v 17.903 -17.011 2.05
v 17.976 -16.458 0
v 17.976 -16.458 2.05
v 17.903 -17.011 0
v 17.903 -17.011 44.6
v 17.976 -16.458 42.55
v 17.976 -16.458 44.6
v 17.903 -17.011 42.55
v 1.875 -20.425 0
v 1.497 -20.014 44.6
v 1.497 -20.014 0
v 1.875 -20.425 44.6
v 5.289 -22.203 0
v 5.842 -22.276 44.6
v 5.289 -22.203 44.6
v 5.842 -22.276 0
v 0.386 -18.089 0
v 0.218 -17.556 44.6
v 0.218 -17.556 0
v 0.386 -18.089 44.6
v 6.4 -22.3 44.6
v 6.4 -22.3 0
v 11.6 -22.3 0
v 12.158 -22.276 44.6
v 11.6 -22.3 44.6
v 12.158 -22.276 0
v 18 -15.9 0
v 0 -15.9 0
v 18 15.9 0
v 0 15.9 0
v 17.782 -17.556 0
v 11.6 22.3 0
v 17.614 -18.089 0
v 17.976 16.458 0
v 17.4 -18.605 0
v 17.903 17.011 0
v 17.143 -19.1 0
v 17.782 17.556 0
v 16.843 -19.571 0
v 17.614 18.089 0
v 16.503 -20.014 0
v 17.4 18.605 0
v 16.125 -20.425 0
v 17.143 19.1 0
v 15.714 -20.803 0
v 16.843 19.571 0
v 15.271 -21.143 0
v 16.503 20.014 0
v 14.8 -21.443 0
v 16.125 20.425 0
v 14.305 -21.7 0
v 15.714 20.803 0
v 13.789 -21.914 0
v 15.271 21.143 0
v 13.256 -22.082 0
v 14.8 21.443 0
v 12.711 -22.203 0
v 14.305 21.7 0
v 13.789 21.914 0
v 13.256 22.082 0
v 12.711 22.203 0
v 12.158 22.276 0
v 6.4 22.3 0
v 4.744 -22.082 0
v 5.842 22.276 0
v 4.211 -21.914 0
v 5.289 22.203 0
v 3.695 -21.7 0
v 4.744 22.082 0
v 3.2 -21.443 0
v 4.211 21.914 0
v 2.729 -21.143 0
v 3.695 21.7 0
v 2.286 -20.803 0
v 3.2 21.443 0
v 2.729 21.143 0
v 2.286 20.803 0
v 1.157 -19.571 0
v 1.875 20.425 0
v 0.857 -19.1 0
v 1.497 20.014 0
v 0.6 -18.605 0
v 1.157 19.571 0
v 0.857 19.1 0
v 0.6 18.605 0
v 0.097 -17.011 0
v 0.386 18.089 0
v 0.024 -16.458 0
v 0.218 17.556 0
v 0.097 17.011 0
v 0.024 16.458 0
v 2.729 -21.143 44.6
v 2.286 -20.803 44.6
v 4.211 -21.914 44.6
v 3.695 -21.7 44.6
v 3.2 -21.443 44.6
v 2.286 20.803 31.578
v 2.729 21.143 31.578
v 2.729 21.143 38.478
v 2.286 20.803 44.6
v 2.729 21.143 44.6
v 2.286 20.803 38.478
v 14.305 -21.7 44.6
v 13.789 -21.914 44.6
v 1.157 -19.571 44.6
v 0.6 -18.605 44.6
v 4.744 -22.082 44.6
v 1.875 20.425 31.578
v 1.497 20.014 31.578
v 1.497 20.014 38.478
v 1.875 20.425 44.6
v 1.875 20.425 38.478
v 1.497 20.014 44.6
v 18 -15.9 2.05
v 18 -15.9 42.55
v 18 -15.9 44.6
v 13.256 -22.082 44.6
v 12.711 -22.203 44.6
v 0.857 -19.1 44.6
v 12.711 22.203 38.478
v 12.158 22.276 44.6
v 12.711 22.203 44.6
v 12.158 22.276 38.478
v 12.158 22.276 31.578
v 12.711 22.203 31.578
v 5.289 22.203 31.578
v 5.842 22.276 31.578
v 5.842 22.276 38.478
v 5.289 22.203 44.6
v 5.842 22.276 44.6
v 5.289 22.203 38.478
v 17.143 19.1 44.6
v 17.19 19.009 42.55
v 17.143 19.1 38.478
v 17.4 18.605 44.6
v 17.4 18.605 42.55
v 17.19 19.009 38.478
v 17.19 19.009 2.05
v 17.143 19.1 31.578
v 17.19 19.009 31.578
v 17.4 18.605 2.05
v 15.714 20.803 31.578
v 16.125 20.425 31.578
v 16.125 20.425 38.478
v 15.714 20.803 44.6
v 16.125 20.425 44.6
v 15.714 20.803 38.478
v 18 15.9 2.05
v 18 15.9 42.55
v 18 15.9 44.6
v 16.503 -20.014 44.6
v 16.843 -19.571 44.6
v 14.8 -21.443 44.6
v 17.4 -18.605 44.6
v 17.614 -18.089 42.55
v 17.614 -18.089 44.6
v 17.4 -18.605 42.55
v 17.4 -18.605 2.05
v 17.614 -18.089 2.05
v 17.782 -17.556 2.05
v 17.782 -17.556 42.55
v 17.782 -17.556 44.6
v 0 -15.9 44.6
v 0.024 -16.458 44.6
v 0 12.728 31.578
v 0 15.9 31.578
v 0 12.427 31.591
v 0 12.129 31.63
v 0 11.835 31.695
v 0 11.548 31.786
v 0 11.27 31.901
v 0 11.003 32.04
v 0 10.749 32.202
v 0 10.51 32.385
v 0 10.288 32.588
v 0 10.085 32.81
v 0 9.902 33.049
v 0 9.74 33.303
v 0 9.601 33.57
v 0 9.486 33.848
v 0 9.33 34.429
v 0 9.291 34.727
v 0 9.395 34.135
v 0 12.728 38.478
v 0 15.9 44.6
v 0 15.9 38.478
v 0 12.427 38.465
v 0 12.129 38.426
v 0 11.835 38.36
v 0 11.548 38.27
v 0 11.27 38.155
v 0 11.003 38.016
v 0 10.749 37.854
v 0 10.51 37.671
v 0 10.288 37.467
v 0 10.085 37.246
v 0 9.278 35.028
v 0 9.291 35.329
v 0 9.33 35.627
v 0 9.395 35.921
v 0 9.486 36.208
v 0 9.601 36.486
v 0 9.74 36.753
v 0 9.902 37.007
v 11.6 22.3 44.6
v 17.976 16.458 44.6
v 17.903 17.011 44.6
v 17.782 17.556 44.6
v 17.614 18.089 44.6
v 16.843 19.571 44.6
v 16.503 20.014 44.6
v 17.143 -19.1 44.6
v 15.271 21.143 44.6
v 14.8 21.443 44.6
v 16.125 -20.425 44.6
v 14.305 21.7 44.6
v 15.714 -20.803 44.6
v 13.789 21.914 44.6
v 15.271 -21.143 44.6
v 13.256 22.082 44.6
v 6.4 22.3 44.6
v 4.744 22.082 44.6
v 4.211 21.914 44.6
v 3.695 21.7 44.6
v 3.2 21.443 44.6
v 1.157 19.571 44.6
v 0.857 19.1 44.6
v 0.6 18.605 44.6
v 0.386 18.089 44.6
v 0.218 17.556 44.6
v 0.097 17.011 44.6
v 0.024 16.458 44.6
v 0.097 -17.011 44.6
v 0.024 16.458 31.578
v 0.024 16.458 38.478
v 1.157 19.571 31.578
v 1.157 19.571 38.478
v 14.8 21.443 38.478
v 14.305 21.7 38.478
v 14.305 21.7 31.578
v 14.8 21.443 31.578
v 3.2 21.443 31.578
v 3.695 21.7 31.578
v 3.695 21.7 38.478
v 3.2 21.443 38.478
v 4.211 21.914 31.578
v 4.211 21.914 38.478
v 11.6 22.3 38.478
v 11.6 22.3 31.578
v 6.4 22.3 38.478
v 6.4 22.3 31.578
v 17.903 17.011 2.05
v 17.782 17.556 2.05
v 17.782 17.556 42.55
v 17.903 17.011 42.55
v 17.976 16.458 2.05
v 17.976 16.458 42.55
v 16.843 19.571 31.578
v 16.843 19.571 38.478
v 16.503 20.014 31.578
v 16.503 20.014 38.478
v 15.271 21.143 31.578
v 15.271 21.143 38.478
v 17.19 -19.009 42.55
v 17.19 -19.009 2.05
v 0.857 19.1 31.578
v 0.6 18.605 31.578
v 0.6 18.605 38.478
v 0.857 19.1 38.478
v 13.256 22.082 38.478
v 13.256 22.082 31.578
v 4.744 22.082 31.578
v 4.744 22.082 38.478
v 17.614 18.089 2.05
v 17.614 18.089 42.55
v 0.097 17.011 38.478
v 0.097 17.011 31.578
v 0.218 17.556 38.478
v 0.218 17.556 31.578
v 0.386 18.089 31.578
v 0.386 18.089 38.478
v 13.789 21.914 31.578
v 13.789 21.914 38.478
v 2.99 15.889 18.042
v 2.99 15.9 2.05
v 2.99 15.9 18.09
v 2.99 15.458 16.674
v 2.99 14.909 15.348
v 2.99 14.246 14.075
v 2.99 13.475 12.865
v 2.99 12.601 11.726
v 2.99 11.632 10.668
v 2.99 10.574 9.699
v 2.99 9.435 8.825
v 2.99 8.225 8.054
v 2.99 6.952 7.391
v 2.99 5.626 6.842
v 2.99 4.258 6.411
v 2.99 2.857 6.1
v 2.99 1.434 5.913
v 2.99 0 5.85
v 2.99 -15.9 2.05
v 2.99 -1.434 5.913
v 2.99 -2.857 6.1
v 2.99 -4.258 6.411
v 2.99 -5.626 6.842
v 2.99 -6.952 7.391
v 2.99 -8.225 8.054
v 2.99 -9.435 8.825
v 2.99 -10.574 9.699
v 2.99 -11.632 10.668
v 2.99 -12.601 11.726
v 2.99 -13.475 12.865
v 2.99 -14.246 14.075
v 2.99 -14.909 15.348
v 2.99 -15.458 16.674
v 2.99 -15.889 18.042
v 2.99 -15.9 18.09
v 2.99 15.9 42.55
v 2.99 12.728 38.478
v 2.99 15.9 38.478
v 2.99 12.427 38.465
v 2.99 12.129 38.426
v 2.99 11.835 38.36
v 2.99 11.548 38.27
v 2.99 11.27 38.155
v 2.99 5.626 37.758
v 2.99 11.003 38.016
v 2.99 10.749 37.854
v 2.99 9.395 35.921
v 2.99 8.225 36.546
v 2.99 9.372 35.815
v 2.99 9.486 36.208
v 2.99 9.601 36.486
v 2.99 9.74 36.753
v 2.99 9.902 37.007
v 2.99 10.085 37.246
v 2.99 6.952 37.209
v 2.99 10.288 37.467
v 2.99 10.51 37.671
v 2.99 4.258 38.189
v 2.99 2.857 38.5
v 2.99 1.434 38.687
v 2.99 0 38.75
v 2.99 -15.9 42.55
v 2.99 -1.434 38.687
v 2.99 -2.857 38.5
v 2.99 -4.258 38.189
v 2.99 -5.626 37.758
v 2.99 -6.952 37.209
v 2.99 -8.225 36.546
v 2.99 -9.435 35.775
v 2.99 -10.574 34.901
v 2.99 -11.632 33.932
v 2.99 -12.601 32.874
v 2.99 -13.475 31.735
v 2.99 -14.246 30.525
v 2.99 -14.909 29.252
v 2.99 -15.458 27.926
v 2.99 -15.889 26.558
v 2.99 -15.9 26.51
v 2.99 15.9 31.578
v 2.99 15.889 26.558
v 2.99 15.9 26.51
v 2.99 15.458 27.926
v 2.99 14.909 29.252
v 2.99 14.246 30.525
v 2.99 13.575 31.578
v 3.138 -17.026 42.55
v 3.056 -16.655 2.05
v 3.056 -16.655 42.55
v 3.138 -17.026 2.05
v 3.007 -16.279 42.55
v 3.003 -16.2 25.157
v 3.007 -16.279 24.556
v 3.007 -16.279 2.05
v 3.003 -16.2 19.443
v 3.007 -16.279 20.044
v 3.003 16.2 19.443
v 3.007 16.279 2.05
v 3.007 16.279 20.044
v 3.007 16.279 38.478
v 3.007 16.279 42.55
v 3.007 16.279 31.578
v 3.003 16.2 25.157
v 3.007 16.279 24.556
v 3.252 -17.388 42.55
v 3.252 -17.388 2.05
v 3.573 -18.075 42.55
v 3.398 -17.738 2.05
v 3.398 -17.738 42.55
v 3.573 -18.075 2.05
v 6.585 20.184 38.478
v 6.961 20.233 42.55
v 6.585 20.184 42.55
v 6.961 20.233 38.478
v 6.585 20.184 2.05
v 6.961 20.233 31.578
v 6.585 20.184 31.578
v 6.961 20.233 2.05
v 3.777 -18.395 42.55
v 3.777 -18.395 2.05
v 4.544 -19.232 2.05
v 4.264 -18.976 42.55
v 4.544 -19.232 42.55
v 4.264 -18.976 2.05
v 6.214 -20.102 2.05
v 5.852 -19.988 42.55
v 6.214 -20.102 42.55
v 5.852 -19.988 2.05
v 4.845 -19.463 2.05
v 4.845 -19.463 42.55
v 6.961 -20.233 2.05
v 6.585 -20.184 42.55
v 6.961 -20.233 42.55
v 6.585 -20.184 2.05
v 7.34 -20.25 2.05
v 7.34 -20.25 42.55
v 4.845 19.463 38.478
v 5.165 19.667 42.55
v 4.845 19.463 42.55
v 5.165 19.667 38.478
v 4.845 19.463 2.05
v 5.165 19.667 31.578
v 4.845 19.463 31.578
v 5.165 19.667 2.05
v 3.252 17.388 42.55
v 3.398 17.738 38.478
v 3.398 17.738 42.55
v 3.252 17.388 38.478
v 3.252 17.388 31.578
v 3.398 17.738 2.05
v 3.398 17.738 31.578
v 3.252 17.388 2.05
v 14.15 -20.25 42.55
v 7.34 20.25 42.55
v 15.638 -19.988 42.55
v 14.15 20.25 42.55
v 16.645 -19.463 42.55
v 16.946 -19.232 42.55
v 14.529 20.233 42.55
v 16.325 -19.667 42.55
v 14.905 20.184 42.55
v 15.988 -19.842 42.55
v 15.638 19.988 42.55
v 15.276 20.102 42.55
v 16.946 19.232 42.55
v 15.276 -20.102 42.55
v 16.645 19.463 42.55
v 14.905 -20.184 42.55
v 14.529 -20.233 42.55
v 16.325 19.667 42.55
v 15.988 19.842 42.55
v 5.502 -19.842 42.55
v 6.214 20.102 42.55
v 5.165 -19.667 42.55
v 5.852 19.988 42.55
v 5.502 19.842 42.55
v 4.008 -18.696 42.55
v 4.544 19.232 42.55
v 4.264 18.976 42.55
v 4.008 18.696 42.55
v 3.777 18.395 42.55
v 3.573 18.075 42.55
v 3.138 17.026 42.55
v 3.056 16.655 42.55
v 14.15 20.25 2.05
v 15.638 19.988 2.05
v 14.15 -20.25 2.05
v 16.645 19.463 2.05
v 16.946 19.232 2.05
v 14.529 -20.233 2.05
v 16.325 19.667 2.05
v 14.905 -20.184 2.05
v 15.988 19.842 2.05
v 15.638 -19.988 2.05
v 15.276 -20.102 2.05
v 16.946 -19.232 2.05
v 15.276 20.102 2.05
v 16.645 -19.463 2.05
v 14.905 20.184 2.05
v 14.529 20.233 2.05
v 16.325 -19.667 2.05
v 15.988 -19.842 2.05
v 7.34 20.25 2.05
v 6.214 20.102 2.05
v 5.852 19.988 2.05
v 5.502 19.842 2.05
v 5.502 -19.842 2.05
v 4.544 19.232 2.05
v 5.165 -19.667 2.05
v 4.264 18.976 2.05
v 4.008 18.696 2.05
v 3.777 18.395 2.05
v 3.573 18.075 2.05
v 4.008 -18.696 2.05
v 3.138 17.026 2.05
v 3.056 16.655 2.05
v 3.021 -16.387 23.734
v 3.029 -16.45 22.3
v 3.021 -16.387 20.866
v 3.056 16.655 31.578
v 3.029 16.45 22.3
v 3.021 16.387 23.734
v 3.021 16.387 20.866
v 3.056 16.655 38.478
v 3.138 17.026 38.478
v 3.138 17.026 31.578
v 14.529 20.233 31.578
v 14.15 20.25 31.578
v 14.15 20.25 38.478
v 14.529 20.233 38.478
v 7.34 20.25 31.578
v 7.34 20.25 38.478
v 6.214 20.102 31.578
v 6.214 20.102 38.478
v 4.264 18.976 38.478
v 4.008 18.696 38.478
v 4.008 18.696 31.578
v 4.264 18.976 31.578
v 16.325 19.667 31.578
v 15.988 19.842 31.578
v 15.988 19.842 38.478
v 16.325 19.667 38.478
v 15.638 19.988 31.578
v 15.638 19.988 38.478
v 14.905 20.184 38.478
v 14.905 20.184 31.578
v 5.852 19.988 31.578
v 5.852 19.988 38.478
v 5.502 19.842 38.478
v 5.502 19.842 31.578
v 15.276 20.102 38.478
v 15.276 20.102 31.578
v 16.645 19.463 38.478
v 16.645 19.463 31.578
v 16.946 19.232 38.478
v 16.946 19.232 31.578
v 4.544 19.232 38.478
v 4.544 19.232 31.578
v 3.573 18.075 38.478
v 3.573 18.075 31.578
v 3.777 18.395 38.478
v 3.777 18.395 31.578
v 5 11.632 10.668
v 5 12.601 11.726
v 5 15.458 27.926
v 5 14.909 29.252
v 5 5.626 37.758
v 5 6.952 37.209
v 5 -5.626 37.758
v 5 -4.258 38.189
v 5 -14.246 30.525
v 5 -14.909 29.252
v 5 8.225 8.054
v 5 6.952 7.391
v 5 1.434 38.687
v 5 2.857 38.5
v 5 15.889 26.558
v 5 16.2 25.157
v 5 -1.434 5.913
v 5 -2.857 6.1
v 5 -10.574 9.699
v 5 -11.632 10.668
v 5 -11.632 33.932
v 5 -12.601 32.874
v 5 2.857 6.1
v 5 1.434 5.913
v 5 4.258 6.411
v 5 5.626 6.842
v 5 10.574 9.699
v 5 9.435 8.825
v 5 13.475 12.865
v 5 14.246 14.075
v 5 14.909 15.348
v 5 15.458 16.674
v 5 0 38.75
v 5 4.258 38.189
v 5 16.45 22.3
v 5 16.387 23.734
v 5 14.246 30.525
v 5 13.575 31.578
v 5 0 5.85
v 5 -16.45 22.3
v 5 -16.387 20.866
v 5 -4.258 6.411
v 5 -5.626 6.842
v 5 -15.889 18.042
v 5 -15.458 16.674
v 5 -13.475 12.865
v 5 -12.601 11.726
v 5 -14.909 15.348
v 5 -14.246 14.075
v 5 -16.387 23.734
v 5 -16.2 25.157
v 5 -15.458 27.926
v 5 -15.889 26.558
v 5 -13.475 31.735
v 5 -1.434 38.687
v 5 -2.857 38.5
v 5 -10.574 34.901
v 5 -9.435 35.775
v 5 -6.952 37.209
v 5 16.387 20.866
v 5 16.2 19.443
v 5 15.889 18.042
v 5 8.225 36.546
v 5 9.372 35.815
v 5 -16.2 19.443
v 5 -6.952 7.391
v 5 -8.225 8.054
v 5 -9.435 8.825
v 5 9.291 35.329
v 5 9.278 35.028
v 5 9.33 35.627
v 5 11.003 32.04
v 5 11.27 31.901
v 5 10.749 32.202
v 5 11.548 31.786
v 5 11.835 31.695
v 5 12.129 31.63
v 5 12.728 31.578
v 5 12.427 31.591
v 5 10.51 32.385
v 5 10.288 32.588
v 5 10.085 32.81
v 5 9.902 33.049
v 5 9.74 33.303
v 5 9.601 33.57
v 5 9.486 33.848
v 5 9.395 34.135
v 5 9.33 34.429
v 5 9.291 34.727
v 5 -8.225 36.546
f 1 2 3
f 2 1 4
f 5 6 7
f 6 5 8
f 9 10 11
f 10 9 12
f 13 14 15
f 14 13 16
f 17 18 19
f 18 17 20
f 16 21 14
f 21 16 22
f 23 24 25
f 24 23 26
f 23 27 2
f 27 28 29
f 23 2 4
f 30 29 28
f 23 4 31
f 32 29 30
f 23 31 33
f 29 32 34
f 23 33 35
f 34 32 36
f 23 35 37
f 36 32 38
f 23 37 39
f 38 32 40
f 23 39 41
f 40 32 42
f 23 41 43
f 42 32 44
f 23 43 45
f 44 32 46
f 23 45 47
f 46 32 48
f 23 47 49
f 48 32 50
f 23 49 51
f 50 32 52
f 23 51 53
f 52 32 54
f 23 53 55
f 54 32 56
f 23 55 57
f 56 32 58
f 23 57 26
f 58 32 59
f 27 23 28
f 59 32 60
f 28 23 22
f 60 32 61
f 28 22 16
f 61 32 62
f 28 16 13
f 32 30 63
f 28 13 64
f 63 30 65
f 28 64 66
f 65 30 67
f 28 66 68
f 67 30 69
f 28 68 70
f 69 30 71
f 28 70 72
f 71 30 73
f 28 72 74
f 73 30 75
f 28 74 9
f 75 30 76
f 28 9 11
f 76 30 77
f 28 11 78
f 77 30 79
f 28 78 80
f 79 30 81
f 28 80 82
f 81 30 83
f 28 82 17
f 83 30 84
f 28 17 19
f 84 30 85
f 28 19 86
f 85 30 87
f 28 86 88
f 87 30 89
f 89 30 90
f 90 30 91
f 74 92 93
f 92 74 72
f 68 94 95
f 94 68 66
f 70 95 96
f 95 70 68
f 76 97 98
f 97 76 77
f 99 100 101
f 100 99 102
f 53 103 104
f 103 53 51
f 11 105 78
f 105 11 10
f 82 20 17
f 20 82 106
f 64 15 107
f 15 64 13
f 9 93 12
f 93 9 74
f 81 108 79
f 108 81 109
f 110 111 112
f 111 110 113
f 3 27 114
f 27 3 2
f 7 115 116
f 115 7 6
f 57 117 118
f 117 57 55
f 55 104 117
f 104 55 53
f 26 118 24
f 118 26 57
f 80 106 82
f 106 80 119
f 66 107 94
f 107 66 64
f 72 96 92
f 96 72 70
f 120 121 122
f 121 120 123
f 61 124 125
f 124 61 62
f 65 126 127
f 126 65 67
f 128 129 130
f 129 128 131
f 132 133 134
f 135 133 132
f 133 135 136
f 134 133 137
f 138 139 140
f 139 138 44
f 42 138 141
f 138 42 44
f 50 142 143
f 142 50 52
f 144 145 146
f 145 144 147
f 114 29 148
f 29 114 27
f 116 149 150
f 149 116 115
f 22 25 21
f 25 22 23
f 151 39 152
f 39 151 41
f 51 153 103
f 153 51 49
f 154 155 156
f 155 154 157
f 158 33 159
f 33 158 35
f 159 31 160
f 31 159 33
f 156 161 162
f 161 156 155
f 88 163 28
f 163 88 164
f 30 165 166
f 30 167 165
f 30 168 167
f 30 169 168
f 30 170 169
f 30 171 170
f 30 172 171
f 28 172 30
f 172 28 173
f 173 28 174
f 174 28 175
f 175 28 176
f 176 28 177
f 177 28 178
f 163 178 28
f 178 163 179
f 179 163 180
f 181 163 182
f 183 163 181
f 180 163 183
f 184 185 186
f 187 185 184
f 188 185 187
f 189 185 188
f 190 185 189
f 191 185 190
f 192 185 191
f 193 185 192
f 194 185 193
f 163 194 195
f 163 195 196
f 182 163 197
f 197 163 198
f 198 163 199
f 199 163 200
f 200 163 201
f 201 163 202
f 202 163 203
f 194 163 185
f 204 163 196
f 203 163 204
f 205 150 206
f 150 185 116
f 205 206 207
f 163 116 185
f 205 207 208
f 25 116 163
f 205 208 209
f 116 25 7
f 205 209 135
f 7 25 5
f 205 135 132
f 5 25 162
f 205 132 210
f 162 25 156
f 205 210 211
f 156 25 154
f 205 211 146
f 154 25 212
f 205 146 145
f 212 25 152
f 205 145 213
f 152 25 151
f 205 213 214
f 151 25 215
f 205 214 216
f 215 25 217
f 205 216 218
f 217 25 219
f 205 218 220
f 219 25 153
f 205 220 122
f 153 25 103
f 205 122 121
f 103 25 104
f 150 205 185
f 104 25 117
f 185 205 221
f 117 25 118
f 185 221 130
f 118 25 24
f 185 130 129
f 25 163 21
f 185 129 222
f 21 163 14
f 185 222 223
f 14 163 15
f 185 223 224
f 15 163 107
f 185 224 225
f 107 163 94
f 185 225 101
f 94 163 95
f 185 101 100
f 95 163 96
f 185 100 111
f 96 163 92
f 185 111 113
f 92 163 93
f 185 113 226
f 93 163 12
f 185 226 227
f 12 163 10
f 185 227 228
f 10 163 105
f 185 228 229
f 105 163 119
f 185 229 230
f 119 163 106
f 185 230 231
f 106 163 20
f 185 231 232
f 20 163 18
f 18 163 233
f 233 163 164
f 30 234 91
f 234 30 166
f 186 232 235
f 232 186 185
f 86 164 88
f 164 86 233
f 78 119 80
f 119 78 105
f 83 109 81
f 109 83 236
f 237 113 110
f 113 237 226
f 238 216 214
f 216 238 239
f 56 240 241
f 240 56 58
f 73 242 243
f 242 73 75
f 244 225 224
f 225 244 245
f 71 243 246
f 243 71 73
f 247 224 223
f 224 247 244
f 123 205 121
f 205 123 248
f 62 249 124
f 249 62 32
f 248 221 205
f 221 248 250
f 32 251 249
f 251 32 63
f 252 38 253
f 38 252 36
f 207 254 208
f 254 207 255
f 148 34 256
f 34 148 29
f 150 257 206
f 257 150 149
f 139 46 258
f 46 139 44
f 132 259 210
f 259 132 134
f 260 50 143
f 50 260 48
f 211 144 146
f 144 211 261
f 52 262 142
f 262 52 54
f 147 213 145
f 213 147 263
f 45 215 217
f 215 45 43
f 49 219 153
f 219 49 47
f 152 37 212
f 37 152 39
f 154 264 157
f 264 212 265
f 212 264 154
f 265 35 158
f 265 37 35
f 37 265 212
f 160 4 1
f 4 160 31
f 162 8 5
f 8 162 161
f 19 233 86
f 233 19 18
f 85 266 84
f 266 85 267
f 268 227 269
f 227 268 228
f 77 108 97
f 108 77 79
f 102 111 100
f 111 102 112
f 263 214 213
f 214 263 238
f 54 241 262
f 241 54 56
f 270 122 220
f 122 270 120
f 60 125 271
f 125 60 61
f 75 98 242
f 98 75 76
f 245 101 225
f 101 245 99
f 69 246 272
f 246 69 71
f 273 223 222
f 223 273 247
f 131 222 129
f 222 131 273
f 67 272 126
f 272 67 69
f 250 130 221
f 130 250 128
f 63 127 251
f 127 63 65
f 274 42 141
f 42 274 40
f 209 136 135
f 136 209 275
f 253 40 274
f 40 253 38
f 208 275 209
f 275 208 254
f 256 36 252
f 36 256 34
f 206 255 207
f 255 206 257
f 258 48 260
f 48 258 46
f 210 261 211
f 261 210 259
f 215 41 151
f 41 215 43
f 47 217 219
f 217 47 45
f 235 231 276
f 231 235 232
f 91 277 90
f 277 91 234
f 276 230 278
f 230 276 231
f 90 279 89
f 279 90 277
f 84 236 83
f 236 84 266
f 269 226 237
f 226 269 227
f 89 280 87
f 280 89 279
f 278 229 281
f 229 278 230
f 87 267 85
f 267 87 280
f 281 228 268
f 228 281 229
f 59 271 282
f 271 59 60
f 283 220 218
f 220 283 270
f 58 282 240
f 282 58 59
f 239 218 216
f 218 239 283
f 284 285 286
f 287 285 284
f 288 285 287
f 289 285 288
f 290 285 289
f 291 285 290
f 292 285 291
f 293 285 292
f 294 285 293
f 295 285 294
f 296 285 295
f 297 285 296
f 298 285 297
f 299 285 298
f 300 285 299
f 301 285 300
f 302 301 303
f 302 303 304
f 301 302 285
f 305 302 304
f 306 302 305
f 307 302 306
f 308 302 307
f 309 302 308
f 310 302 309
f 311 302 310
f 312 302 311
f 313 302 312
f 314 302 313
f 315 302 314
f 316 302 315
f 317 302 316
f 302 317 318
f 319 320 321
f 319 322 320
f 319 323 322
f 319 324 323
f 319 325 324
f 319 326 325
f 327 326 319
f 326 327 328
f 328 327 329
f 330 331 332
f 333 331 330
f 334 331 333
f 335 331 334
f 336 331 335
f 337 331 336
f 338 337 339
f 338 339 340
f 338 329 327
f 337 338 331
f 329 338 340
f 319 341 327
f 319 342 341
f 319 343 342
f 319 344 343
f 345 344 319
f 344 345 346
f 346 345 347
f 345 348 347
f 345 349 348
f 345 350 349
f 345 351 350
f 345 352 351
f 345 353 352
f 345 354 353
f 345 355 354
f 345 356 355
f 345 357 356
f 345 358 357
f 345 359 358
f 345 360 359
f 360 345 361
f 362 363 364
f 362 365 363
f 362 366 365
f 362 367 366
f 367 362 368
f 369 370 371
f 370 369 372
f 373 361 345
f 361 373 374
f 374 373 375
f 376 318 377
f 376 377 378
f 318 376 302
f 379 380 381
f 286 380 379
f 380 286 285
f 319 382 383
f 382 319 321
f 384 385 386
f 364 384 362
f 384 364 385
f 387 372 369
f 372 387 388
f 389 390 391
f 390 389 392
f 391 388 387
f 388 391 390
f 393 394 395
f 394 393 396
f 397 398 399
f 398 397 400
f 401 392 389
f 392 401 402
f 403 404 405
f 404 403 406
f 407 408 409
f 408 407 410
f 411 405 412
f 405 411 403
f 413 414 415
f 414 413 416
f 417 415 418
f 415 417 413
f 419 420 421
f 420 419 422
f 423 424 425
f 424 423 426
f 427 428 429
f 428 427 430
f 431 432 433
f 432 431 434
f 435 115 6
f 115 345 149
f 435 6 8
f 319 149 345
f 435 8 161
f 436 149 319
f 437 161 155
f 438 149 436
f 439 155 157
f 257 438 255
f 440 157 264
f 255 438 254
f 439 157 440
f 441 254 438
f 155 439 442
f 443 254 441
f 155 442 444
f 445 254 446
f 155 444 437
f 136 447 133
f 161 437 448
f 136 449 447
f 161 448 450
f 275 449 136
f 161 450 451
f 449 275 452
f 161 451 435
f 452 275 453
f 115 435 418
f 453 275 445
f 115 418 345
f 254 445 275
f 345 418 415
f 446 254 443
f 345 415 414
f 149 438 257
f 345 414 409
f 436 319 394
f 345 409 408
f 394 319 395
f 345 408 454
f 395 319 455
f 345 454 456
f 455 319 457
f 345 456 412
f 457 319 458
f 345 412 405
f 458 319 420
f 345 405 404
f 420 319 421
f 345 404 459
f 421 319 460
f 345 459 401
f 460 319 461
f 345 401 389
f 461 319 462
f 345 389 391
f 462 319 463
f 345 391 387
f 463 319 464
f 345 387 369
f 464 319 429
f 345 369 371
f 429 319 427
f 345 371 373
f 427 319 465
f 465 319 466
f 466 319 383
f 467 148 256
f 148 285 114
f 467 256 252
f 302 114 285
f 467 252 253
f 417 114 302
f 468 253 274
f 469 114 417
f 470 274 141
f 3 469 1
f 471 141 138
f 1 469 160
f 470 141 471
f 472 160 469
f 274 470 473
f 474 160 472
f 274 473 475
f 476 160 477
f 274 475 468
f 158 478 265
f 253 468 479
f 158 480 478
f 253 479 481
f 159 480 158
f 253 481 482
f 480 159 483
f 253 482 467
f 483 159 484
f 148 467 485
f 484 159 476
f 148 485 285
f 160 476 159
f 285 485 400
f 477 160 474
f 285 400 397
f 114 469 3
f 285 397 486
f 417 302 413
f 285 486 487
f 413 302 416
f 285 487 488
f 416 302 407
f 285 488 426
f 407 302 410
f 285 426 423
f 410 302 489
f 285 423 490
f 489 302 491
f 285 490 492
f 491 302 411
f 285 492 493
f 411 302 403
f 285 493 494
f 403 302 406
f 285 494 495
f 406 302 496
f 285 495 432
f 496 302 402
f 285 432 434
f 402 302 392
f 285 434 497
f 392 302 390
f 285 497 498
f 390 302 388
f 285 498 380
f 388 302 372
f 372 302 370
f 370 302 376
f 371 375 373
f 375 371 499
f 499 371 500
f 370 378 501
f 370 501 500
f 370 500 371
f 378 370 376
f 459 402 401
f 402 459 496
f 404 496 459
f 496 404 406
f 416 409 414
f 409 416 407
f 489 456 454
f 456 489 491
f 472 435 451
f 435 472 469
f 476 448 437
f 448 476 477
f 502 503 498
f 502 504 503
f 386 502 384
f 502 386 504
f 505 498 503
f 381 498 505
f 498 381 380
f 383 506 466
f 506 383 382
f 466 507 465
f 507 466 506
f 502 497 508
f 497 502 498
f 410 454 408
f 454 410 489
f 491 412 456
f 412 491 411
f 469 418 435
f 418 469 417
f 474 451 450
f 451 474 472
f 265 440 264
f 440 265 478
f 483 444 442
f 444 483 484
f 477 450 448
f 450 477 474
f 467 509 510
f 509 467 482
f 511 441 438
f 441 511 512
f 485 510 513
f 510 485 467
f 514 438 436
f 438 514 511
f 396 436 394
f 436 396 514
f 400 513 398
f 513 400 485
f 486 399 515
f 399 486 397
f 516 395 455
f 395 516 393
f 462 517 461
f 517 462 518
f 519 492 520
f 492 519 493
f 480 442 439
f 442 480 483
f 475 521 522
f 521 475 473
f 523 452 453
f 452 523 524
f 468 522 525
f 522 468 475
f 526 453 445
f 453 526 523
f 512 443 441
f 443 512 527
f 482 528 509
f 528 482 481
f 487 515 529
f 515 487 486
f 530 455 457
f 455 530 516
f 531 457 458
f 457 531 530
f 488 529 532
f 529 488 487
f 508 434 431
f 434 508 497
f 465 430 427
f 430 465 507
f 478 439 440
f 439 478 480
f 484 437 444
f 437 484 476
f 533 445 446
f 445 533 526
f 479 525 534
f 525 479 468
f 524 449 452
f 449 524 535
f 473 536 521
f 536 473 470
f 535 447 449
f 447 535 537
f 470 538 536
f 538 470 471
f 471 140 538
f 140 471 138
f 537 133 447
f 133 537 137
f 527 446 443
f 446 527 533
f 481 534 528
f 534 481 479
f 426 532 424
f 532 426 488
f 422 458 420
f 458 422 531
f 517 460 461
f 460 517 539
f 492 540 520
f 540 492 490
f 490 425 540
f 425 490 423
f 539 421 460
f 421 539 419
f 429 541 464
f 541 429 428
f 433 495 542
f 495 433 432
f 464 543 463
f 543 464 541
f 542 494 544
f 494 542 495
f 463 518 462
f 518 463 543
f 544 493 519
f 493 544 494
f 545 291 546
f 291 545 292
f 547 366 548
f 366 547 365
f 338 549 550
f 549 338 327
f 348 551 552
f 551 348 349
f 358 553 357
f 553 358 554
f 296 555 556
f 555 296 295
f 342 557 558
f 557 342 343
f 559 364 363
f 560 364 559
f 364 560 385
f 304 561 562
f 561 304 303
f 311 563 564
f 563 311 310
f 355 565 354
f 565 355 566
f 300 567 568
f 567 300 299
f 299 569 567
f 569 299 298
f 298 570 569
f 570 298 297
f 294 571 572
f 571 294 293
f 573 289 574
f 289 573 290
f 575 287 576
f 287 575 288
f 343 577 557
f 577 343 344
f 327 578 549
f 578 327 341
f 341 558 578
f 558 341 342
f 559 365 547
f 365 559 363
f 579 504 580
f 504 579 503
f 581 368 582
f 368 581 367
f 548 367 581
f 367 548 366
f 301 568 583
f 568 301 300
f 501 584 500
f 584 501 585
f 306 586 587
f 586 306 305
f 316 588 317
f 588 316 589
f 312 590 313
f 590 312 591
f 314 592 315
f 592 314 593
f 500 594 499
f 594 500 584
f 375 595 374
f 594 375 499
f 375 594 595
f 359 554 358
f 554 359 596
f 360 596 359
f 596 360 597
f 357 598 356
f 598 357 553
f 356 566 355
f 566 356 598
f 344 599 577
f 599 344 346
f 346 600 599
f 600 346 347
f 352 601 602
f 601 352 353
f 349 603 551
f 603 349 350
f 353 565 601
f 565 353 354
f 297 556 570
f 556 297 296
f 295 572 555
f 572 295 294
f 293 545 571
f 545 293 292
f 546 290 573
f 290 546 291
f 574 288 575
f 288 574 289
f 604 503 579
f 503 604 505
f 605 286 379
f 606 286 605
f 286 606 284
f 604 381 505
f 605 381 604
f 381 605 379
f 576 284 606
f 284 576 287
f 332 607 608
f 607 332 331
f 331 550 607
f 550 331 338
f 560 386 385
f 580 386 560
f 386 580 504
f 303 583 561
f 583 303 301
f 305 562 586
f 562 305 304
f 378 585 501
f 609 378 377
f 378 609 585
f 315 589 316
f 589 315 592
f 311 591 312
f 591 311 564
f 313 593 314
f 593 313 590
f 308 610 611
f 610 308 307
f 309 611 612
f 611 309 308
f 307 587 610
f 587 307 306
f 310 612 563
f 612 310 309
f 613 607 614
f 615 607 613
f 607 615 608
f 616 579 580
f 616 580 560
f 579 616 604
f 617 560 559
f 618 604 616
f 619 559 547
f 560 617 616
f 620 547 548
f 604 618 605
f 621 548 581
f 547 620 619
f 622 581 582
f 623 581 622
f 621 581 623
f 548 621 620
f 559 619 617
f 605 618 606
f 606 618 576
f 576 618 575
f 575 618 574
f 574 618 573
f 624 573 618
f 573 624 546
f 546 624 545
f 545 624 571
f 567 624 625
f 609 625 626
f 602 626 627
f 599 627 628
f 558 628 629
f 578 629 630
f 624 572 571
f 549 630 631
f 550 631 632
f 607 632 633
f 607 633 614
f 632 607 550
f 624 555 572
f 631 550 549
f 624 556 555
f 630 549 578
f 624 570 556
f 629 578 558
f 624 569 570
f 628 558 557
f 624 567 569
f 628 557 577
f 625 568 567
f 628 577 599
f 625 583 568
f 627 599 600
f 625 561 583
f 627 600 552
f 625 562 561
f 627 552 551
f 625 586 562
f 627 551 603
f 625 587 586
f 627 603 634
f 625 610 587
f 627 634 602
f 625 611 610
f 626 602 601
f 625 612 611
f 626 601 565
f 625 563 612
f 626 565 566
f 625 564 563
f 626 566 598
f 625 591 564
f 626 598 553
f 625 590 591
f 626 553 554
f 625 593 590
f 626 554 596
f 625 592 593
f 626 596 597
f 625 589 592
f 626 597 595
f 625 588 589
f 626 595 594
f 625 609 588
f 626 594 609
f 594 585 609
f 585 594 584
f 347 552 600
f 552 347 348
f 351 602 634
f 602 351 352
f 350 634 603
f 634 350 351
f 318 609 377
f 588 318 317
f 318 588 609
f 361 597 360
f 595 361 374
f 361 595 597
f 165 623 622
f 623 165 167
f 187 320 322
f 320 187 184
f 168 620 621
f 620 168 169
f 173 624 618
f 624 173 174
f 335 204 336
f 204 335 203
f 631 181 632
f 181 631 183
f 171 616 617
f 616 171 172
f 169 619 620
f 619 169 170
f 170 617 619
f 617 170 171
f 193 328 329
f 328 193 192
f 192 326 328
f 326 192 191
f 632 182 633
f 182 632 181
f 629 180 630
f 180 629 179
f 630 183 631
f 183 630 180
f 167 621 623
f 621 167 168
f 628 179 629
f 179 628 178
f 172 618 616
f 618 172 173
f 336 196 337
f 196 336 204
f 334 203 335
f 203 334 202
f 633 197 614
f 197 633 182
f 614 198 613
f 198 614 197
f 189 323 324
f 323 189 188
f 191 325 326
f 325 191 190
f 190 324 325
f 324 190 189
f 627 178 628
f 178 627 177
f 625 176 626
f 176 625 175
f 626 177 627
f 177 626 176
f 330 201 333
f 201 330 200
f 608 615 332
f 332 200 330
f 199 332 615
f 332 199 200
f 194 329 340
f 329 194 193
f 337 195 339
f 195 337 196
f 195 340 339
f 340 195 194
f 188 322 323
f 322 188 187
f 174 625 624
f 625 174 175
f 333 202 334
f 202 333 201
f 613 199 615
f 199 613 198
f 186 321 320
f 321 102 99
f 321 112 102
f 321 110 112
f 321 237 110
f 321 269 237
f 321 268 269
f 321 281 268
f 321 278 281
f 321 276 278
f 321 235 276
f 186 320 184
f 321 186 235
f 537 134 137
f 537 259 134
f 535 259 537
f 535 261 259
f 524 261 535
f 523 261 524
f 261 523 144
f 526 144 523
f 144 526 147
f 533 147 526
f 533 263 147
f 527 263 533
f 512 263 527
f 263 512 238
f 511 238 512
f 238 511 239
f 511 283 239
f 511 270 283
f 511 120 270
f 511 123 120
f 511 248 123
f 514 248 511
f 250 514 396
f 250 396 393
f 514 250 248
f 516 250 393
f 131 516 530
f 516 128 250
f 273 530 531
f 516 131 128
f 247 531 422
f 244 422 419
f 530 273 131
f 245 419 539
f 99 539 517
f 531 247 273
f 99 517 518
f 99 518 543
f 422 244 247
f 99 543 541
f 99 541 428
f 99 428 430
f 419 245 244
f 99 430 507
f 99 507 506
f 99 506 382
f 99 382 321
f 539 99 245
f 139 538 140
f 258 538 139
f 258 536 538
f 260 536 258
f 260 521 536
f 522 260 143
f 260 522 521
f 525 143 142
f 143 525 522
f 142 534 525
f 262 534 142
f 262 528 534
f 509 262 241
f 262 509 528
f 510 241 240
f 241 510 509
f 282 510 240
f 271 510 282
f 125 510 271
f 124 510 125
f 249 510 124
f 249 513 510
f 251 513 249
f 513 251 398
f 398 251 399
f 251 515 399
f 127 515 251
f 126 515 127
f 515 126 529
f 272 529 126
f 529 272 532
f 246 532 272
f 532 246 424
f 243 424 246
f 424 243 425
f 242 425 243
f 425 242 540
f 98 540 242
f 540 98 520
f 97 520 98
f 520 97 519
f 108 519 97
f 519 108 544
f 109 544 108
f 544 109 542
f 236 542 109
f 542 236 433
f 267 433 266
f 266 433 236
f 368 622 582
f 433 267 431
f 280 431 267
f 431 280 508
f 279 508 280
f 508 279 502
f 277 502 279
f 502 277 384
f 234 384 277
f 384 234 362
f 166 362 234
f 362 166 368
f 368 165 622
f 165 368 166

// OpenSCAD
// OpenSCAD 2021.01 compatible
// Single-piece sleeve case for one 33140 LiFePO4 battery
//
// Design intent:
// - one-piece case, closed at +X end
// - open insertion mouth at -X end
// - battery slides in lengthwise
// - already-soldered wire runs parallel to the battery
// - cable channel is directly beside the battery cavity and slightly overlaps it,
//   forming a connected side groove so the wire can slide in with the cell.
// - cable channel is rotated toward a corner of the battery cavity, so it uses
//   existing corner material instead of forcing the sleeve wider on one side.
//
// Configured cell size: 33 mm diameter x 152 mm length.

$fn = 72;

// -----------------------------
// Battery and cable parameters
// -----------------------------
battery_diameter       = 33.0;
battery_length         = 152.0;
diameter_clearance     = 0.8;
length_clearance       = 3.0;

cable_channel_d        = 6;      // adjust to your insulated wire diameter
cable_channel_overlap  = 1.9;    // overlap with battery cavity, makes connected groove

// Cable channel angular placement around the battery cavity cross-section.
// 0   = old position on the +Y side, which made the case wider.
// +45 = upper +Y/+Z corner, using existing corner material.
// -45 = lower +Y/-Z corner, using existing corner material.
// +90 / -90 are possible true vertical positions, but they usually require
// extra height instead of saving material.
cable_channel_angle_deg = 45;

// -----------------------------
// Case parameters
// -----------------------------
wall                   = 3.0;
closed_end_wall        = 4.0;
corner_radius          = 4.0;

mouth_relief_len       = 7.0;
mouth_extra_d          = 1.2;

// Output selection:
// "sleeve"   = printable battery sleeve only
// "cap"      = printable open-end cap only
// "both"     = sleeve and cap separated for visual checking / combined export
// "assembly" = cap shown in its assembled position on the sleeve
output_part            = "cap";

// Sleeve view modes used when output_part is "sleeve", "both", or "assembly":
// "print"         = printable sleeve only
// "cutaway"       = cutaway preview with optional reference cell/cable
// "solid_preview" = whole sleeve with optional references
view_mode              = "print";
show_reference_cell    = false;
show_reference_cable   = false;

// -----------------------------
// Open-end cap parameters
// -----------------------------
// The cap is an external cup/collar that slides over the open end.
// It does not need a long plug inside the battery cavity, so it does not
// consume the 3 mm length clearance reserved for the cell.
cap_front_thickness    = 3.0;
cap_collar_len         = 15.0;
cap_wall               = 2.4;
cap_fit_clearance      = 0.35;   // radial/YZ clearance around outside of sleeve

// Small internal battery stop. Keep this below length_clearance.
// With length_clearance = 3.0, 2.0 leaves about 1 mm free.
cap_battery_stop_len   = 2.0;
cap_battery_stop_d_clearance = 0.45;

// Cable exit through the cap. The side slot lets you install the cap around
// an already-soldered cable without threading the complete cable through a hole.
cap_cable_clearance    = 0.45;
cap_open_side_slot     = true;

// -----------------------------
// Derived geometry
// -----------------------------
cavity_d               = battery_diameter + diameter_clearance;
cell_r                 = cavity_d / 2;
cable_r                = cable_channel_d / 2;

case_len               = battery_length + length_clearance + closed_end_wall;
open_x                 = -case_len / 2;
closed_x               =  case_len / 2;
cavity_x0              = open_x - 1.0;                 // cuts through open mouth
cavity_x1              = closed_x - closed_end_wall;   // leaves closed end wall

cell_center_y          = 0;
cell_center_z          = wall + cell_r;

// Directly adjacent groove, rotated around the battery cavity. The overlap means
// the battery cavity and cable channel are one connected interior shape instead
// of two separated holes. OpenSCAD trigonometric functions use degrees.
cable_center_offset    = cell_r + cable_r - cable_channel_overlap;
cable_center_y         = cell_center_y + cable_center_offset * cos(cable_channel_angle_deg);
cable_center_z         = cell_center_z + cable_center_offset * sin(cable_channel_angle_deg);

// Outer sleeve bounds are now calculated from both the battery cavity and cable
// channel. At +/-45 degrees this keeps the old battery-only envelope and avoids
// the former one-sided +Y material extension.
case_y_min             = min(cell_center_y - cell_r, cable_center_y - cable_r) - wall;
case_y_max             = max(cell_center_y + cell_r, cable_center_y + cable_r) + wall;
case_z_min             = min(cell_center_z - cell_r - wall, cable_center_z - cable_r - wall);
case_z_max             = max(cell_center_z + cell_r + wall, cable_center_z + cable_r + wall);

label_z                = case_z_max + 0.02;
label_engrave_depth    = 0.55;

// -----------------------------
// Helpers
// -----------------------------
module x_cylinder_between(x0, x1, y, z, d) {
    translate([x0, y, z])
        rotate([0, 90, 0])
            cylinder(h = x1 - x0, d = d);
}

module rounded_box_bounds(xmin, xmax, ymin, ymax, zmin, zmax, r) {
    h = zmax - zmin;
    translate([0, 0, zmin])
        hull() {
            for (x = [xmin + r, xmax - r])
                for (y = [ymin + r, ymax - r])
                    translate([x, y, 0])
                        cylinder(h = h, r = r);
        }
}

module outer_sleeve() {
    rounded_box_bounds(
        open_x, closed_x,
        case_y_min, case_y_max,
        case_z_min, case_z_max,
        corner_radius
    );
}

module internal_voids() {
    // Main battery cavity: open at -X, blind at +X.
    x_cylinder_between(cavity_x0, cavity_x1, cell_center_y, cell_center_z, cavity_d);

    // Parallel cable channel directly next to the battery cavity.
    // Because it overlaps the battery cavity, it creates a side groove for the wire.
    x_cylinder_between(cavity_x0, cavity_x1, cable_center_y, cable_center_z, cable_channel_d);

    // Open-mouth relief so cell + soldered wire start more easily.
    x_cylinder_between(open_x - 1.2, open_x + mouth_relief_len,
                       cell_center_y, cell_center_z, cavity_d + mouth_extra_d);

    x_cylinder_between(open_x - 1.2, open_x + mouth_relief_len,
                       cable_center_y, cable_center_z, cable_channel_d + mouth_extra_d);
}

module polarity_mark_cutouts() {
    // Recessed marks cut inward into the top surface.
    // This avoids raised outward-facing text that can be damaged or interfere
    // when the sleeve is printed standing on the closed end.
    translate([open_x + 13, (case_y_min + case_y_max) / 2, case_z_max - label_engrave_depth + 0.01])
        linear_extrude(height = label_engrave_depth + 0.04)
            text("-", size = 4.8, halign = "center", valign = "center");

    translate([closed_x - 12, (case_y_min + case_y_max) / 2, case_z_max - label_engrave_depth + 0.01])
        linear_extrude(height = label_engrave_depth + 0.04)
            text("+", size = 4.8, halign = "center", valign = "center");
}

module sleeve_case() {
    difference() {
        outer_sleeve();
        internal_voids();
        polarity_mark_cutouts();
    }
}


// -----------------------------
// Open-end cap
// -----------------------------
module cap_shell_only() {
    // External cup/collar around the outside of the sleeve.
    // Front plate is on the open end; rear collar slides over the sleeve body.
    difference() {
        rounded_box_bounds(
            open_x - cap_front_thickness,
            open_x + cap_collar_len,
            case_y_min - cap_wall,
            case_y_max + cap_wall,
            case_z_min - cap_wall,
            case_z_max + cap_wall,
            corner_radius + cap_wall
        );

        // Clearance pocket for the sleeve exterior. This starts at the sleeve
        // mouth, preserving the front plate while clearing the collar volume.
        rounded_box_bounds(
            open_x - 0.01,
            open_x + cap_collar_len + 0.50,
            case_y_min - cap_fit_clearance,
            case_y_max + cap_fit_clearance,
            case_z_min - cap_fit_clearance,
            case_z_max + cap_fit_clearance,
            corner_radius + cap_fit_clearance
        );
    }
}

module cap_battery_stop() {
    // Shallow stop/centering boss. It projects into the battery cavity only a
    // little, so the existing length clearance is not consumed aggressively.
    if (cap_battery_stop_len > 0)
        x_cylinder_between(
            open_x - cap_front_thickness + 0.05,
            open_x + cap_battery_stop_len,
            cell_center_y,
            cell_center_z,
            cavity_d - 2 * cap_battery_stop_d_clearance
        );
}

module cap_cable_cutout() {
    cut_x0 = open_x - cap_front_thickness - 0.40;
    cut_x1 = open_x + cap_collar_len + 0.60;
    cable_exit_d = cable_channel_d + 2 * cap_cable_clearance;

    // Round through-passage aligned with the sleeve's cable channel.
    x_cylinder_between(
        cut_x0,
        cut_x1,
        cable_center_y,
        cable_center_z,
        cable_exit_d
    );

    // Optional side slot from the cable passage to the +Y edge of the cap.
    // This is useful when the cable is already soldered and cannot be threaded.
    if (cap_open_side_slot)
        translate([
            cut_x0,
            cable_center_y,
            cable_center_z - cable_exit_d / 2
        ])
            cube([
                cut_x1 - cut_x0,
                (case_y_max + cap_wall + 2.0) - cable_center_y,
                cable_exit_d
            ]);
}

module open_end_cap_assembled() {
    difference() {
        union() {
            cap_shell_only();
            cap_battery_stop();
        }
        cap_cable_cutout();
    }
}

module open_end_cap_print() {
    // Move standalone cap to positive X/Z for convenient export/printing.
    translate([
        -(open_x - cap_front_thickness),
        0,
        -(case_z_min - cap_wall)
    ])
        open_end_cap_assembled();
}

module reference_cell_and_wire() {
    if (show_reference_cell) {
        color([0.15, 0.15, 0.15, 0.35])
            x_cylinder_between(open_x + 2, open_x + 2 + battery_length,
                               cell_center_y, cell_center_z, battery_diameter);
    }

    if (show_reference_cable) {
        color([0.05, 0.1, 1.0, 0.55])
            x_cylinder_between(open_x + 1, cavity_x1 - 1,
                               cable_center_y, cable_center_z, cable_channel_d * 0.65);
    }
}

module solid_preview() {
    sleeve_case();
    reference_cell_and_wire();
}

module cutaway_view() {
    difference() {
        union() {
            sleeve_case();
            reference_cell_and_wire();
        }

        // Remove a front/top quadrant to expose the battery cavity and corner cable groove.
        translate([open_x - 5, case_y_min - 20, (case_z_min + case_z_max) / 2])
            cube([case_len + 10, (case_y_max - case_y_min) + 40,
                  (case_z_max - case_z_min) / 2 + 20]);

        translate([open_x - 5, case_y_min - 20, case_z_min - 2])
            cube([case_len + 10, (case_y_max - case_y_min) / 2 + 20,
                  (case_z_max - case_z_min) + 4]);
    }
}

// -----------------------------
// Output
// -----------------------------
module selected_sleeve_view() {
    if (view_mode == "cutaway")
        cutaway_view();
    else if (view_mode == "solid_preview")
        solid_preview();
    else
        sleeve_case();
}

if (output_part == "cap") {
    open_end_cap_print();
} else if (output_part == "both") {
    selected_sleeve_view();
    translate([0, (case_y_max - case_y_min) + 2 * cap_wall + 12, 0])
        open_end_cap_print();
} else if (output_part == "assembly") {
    selected_sleeve_view();
    open_end_cap_assembled();
} else {
    selected_sleeve_view();
}
